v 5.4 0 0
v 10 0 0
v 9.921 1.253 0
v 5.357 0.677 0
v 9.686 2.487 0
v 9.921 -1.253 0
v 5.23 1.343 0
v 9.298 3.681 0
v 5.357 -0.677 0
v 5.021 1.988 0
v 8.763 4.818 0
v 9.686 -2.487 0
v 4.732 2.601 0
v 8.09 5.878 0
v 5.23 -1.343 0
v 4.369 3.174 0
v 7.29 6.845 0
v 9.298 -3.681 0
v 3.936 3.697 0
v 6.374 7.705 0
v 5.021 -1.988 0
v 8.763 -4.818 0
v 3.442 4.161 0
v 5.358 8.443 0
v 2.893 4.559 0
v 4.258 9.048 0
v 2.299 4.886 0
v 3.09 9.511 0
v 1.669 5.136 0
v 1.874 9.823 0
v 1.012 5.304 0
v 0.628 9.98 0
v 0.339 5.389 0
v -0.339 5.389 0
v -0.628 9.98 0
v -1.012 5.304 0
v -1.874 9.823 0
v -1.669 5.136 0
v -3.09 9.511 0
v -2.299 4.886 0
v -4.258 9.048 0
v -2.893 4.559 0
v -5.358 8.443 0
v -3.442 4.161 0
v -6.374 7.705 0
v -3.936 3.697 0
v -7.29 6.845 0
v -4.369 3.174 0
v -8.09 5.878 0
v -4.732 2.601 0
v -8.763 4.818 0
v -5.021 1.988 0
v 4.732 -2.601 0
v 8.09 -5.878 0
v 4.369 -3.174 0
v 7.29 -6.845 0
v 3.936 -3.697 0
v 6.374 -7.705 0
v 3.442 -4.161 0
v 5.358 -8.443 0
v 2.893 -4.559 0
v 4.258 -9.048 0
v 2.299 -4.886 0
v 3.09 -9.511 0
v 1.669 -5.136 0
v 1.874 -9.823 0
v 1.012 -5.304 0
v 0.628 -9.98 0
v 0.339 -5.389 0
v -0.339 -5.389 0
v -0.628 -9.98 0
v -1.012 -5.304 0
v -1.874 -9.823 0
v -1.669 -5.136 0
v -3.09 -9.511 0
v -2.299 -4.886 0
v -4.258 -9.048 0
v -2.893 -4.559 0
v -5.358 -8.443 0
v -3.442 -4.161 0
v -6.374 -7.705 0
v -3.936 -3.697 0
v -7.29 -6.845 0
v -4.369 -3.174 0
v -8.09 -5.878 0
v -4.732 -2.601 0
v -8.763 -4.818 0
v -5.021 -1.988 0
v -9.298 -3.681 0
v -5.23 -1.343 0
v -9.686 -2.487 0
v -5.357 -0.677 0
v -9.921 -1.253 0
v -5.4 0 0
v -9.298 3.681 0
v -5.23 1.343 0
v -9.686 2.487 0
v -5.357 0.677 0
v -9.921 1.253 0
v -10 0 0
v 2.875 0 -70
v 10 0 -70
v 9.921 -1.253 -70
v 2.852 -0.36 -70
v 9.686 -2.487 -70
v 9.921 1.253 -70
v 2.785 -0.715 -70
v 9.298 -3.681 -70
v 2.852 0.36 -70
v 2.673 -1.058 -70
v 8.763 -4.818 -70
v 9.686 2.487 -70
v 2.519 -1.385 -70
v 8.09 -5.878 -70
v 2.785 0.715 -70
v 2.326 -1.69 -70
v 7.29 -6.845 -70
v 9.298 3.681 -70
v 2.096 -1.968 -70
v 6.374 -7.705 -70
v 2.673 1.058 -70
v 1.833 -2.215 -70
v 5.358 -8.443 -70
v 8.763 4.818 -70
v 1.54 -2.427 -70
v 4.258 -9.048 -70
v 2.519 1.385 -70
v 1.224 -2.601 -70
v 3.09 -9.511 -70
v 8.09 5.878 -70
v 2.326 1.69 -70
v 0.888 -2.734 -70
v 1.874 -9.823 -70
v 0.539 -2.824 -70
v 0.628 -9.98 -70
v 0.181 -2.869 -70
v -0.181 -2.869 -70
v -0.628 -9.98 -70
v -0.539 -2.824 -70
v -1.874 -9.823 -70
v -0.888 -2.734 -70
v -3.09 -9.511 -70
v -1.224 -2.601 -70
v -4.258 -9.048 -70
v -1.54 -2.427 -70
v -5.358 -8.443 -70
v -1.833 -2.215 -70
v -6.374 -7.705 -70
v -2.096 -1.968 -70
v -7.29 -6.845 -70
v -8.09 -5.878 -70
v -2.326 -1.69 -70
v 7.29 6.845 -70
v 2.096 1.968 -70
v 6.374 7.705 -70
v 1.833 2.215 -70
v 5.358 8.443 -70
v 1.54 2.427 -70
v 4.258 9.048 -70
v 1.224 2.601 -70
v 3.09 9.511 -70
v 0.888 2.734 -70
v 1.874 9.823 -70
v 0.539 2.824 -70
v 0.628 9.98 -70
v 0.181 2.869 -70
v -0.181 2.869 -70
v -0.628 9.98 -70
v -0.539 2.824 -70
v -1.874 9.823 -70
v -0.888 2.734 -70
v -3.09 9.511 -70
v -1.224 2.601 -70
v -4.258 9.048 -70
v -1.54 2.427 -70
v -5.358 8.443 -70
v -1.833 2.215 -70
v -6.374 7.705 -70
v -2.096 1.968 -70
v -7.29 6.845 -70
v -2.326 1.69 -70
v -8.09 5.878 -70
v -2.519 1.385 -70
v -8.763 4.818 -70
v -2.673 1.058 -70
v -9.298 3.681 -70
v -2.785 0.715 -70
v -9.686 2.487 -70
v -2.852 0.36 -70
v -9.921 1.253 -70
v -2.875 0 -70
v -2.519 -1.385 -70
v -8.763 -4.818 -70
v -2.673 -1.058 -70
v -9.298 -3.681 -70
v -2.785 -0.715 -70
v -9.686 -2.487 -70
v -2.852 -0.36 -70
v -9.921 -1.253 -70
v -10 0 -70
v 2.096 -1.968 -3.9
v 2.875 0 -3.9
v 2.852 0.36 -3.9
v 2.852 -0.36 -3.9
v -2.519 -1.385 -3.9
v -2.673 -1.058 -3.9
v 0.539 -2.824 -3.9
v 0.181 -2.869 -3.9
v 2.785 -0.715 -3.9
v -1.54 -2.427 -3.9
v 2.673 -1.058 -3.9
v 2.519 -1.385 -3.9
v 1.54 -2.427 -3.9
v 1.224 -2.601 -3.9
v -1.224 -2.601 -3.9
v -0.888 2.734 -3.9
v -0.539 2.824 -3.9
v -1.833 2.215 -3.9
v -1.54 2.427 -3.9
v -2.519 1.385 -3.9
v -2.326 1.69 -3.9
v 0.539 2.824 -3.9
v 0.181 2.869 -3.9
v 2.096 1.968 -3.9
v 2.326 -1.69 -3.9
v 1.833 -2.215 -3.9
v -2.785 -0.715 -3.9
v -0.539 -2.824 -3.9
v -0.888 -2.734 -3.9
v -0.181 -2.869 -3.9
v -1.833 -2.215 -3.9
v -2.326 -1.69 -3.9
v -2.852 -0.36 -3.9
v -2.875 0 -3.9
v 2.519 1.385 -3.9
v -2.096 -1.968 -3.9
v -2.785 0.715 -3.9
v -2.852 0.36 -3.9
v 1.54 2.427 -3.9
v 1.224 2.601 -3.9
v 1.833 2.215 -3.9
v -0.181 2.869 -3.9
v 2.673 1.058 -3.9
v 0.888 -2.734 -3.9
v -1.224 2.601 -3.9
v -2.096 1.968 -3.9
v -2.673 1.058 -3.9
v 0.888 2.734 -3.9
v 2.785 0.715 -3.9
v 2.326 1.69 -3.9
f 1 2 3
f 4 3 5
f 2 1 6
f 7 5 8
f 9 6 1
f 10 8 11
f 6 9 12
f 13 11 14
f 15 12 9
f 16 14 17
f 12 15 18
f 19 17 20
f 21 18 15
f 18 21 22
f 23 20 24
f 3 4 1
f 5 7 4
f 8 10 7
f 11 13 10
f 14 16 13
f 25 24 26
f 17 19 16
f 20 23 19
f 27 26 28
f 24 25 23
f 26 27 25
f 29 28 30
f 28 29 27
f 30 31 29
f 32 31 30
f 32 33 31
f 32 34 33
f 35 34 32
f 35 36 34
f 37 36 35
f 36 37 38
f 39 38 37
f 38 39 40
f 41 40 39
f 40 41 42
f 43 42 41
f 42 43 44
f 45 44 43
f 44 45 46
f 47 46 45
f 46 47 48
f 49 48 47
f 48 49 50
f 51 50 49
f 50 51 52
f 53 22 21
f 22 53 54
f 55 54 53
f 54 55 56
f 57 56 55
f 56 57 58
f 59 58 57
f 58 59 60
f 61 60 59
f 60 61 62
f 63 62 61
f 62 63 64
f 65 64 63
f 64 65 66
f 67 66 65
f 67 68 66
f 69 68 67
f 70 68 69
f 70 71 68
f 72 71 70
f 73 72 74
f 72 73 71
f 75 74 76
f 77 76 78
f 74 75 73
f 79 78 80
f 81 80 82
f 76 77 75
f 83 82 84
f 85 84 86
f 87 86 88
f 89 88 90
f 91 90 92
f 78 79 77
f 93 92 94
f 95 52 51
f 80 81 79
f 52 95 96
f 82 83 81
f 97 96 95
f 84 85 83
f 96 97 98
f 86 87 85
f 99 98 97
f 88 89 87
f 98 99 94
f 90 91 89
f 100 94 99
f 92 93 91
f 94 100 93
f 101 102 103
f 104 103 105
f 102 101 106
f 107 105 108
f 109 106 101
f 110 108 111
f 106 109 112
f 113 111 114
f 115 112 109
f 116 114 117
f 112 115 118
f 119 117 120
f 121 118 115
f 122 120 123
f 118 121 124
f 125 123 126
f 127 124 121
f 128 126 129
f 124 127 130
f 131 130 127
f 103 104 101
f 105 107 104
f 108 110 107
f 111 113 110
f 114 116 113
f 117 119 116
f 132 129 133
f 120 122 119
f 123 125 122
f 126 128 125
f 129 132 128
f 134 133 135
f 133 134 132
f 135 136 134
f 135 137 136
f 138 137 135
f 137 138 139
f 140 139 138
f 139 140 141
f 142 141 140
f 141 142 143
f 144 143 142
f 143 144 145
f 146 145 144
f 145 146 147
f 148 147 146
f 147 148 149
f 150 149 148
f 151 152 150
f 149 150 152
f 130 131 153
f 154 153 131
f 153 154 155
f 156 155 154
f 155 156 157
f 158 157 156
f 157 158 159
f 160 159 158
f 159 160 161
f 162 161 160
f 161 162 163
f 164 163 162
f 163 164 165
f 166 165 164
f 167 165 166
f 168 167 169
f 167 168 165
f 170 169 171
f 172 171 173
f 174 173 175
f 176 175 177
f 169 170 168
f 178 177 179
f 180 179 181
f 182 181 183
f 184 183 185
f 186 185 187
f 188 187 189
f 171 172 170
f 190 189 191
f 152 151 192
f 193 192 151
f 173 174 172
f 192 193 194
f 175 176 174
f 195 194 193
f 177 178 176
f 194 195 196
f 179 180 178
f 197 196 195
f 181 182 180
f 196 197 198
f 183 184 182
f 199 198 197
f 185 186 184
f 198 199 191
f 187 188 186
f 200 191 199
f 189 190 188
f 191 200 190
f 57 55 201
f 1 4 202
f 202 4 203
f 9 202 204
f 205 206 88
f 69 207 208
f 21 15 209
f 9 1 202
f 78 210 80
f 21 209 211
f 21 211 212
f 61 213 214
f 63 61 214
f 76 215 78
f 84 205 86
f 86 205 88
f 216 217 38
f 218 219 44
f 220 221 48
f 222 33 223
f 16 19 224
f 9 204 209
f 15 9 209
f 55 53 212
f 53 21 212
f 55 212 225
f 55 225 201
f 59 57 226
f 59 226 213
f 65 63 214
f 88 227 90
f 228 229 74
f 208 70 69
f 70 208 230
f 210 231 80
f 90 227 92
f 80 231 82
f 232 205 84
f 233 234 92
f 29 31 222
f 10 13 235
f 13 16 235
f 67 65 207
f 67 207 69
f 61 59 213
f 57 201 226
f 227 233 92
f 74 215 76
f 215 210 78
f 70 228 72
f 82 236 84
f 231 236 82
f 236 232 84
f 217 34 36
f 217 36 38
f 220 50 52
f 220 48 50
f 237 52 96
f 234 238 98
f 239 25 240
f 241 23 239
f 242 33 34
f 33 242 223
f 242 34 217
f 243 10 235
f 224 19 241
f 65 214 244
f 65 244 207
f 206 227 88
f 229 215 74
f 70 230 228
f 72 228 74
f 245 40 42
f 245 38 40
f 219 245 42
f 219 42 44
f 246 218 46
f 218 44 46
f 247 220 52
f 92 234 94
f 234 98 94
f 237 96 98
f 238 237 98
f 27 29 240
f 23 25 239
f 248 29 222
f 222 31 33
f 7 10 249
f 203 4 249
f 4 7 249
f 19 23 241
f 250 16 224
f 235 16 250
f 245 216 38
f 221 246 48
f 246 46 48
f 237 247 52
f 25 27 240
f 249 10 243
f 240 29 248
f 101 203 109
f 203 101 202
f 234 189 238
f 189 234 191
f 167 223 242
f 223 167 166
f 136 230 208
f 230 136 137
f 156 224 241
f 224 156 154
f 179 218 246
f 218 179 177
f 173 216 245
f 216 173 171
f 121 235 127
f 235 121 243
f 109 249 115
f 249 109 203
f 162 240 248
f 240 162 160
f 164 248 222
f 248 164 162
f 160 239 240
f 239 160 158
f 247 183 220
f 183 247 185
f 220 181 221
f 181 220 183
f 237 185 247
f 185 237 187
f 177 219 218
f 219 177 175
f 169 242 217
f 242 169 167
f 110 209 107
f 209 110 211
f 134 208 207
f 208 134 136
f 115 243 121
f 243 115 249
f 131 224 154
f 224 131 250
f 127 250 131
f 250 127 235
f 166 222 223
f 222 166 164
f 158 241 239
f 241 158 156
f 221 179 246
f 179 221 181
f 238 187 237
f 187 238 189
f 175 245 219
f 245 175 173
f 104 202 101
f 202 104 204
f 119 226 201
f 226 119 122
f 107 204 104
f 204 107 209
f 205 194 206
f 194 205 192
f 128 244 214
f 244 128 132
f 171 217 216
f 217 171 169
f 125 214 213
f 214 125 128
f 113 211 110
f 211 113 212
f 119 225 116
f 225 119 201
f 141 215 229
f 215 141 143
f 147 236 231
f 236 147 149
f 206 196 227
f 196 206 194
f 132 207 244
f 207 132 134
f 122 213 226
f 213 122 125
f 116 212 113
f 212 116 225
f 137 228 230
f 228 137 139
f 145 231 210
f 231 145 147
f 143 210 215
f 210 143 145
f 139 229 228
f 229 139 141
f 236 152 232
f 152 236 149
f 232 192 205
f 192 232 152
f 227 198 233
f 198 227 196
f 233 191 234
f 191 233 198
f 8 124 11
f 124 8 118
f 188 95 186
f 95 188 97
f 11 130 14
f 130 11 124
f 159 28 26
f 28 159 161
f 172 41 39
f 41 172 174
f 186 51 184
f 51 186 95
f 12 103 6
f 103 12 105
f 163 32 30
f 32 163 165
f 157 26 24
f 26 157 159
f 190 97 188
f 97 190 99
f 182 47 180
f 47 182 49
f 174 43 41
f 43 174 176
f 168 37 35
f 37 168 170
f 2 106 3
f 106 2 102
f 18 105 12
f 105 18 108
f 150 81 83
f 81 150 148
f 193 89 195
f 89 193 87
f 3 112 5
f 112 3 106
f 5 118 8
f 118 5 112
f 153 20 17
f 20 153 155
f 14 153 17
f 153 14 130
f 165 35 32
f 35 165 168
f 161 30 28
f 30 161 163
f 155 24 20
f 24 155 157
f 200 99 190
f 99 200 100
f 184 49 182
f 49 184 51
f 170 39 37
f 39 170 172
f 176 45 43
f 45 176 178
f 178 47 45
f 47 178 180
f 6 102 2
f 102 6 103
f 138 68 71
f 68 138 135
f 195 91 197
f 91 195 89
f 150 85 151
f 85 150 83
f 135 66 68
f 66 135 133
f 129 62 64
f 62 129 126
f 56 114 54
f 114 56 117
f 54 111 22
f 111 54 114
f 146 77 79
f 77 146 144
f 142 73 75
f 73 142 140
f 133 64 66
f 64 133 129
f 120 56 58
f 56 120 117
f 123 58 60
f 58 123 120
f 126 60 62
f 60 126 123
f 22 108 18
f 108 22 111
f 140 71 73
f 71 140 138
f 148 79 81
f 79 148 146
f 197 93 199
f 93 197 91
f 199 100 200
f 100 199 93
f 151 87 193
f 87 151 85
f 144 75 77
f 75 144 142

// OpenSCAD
$fn = 50;


difference() {
	union() {
		translate(v = [0, 0, -70.0000000000]) {
			cylinder(h = 70, r = 10.0000000000);
		}
		cylinder(h = 0, r = 19.0000000000);
	}
	union() {
		translate(v = [0, 0, 0]) {
			rotate(a = [0, 0, 0]) {
				difference() {
					union() {
						#translate(v = [0, 0, -70.0000000000]) {
							cylinder(h = 70, r = 2.6000000000);
						}
						#translate(v = [0, 0, -3.9000000000]) {
							cylinder(h = 3.9000000000, r1 = 2.8750000000, r2 = 5.4000000000);
						}
						#translate(v = [0, 0, -70.0000000000]) {
							cylinder(h = 70, r = 2.8750000000);
						}
						#translate(v = [0, 0, -70.0000000000]) {
							cylinder(h = 70, r = 2.6000000000);
						}
					}
					union();
				}
			}
		}
	}
}
